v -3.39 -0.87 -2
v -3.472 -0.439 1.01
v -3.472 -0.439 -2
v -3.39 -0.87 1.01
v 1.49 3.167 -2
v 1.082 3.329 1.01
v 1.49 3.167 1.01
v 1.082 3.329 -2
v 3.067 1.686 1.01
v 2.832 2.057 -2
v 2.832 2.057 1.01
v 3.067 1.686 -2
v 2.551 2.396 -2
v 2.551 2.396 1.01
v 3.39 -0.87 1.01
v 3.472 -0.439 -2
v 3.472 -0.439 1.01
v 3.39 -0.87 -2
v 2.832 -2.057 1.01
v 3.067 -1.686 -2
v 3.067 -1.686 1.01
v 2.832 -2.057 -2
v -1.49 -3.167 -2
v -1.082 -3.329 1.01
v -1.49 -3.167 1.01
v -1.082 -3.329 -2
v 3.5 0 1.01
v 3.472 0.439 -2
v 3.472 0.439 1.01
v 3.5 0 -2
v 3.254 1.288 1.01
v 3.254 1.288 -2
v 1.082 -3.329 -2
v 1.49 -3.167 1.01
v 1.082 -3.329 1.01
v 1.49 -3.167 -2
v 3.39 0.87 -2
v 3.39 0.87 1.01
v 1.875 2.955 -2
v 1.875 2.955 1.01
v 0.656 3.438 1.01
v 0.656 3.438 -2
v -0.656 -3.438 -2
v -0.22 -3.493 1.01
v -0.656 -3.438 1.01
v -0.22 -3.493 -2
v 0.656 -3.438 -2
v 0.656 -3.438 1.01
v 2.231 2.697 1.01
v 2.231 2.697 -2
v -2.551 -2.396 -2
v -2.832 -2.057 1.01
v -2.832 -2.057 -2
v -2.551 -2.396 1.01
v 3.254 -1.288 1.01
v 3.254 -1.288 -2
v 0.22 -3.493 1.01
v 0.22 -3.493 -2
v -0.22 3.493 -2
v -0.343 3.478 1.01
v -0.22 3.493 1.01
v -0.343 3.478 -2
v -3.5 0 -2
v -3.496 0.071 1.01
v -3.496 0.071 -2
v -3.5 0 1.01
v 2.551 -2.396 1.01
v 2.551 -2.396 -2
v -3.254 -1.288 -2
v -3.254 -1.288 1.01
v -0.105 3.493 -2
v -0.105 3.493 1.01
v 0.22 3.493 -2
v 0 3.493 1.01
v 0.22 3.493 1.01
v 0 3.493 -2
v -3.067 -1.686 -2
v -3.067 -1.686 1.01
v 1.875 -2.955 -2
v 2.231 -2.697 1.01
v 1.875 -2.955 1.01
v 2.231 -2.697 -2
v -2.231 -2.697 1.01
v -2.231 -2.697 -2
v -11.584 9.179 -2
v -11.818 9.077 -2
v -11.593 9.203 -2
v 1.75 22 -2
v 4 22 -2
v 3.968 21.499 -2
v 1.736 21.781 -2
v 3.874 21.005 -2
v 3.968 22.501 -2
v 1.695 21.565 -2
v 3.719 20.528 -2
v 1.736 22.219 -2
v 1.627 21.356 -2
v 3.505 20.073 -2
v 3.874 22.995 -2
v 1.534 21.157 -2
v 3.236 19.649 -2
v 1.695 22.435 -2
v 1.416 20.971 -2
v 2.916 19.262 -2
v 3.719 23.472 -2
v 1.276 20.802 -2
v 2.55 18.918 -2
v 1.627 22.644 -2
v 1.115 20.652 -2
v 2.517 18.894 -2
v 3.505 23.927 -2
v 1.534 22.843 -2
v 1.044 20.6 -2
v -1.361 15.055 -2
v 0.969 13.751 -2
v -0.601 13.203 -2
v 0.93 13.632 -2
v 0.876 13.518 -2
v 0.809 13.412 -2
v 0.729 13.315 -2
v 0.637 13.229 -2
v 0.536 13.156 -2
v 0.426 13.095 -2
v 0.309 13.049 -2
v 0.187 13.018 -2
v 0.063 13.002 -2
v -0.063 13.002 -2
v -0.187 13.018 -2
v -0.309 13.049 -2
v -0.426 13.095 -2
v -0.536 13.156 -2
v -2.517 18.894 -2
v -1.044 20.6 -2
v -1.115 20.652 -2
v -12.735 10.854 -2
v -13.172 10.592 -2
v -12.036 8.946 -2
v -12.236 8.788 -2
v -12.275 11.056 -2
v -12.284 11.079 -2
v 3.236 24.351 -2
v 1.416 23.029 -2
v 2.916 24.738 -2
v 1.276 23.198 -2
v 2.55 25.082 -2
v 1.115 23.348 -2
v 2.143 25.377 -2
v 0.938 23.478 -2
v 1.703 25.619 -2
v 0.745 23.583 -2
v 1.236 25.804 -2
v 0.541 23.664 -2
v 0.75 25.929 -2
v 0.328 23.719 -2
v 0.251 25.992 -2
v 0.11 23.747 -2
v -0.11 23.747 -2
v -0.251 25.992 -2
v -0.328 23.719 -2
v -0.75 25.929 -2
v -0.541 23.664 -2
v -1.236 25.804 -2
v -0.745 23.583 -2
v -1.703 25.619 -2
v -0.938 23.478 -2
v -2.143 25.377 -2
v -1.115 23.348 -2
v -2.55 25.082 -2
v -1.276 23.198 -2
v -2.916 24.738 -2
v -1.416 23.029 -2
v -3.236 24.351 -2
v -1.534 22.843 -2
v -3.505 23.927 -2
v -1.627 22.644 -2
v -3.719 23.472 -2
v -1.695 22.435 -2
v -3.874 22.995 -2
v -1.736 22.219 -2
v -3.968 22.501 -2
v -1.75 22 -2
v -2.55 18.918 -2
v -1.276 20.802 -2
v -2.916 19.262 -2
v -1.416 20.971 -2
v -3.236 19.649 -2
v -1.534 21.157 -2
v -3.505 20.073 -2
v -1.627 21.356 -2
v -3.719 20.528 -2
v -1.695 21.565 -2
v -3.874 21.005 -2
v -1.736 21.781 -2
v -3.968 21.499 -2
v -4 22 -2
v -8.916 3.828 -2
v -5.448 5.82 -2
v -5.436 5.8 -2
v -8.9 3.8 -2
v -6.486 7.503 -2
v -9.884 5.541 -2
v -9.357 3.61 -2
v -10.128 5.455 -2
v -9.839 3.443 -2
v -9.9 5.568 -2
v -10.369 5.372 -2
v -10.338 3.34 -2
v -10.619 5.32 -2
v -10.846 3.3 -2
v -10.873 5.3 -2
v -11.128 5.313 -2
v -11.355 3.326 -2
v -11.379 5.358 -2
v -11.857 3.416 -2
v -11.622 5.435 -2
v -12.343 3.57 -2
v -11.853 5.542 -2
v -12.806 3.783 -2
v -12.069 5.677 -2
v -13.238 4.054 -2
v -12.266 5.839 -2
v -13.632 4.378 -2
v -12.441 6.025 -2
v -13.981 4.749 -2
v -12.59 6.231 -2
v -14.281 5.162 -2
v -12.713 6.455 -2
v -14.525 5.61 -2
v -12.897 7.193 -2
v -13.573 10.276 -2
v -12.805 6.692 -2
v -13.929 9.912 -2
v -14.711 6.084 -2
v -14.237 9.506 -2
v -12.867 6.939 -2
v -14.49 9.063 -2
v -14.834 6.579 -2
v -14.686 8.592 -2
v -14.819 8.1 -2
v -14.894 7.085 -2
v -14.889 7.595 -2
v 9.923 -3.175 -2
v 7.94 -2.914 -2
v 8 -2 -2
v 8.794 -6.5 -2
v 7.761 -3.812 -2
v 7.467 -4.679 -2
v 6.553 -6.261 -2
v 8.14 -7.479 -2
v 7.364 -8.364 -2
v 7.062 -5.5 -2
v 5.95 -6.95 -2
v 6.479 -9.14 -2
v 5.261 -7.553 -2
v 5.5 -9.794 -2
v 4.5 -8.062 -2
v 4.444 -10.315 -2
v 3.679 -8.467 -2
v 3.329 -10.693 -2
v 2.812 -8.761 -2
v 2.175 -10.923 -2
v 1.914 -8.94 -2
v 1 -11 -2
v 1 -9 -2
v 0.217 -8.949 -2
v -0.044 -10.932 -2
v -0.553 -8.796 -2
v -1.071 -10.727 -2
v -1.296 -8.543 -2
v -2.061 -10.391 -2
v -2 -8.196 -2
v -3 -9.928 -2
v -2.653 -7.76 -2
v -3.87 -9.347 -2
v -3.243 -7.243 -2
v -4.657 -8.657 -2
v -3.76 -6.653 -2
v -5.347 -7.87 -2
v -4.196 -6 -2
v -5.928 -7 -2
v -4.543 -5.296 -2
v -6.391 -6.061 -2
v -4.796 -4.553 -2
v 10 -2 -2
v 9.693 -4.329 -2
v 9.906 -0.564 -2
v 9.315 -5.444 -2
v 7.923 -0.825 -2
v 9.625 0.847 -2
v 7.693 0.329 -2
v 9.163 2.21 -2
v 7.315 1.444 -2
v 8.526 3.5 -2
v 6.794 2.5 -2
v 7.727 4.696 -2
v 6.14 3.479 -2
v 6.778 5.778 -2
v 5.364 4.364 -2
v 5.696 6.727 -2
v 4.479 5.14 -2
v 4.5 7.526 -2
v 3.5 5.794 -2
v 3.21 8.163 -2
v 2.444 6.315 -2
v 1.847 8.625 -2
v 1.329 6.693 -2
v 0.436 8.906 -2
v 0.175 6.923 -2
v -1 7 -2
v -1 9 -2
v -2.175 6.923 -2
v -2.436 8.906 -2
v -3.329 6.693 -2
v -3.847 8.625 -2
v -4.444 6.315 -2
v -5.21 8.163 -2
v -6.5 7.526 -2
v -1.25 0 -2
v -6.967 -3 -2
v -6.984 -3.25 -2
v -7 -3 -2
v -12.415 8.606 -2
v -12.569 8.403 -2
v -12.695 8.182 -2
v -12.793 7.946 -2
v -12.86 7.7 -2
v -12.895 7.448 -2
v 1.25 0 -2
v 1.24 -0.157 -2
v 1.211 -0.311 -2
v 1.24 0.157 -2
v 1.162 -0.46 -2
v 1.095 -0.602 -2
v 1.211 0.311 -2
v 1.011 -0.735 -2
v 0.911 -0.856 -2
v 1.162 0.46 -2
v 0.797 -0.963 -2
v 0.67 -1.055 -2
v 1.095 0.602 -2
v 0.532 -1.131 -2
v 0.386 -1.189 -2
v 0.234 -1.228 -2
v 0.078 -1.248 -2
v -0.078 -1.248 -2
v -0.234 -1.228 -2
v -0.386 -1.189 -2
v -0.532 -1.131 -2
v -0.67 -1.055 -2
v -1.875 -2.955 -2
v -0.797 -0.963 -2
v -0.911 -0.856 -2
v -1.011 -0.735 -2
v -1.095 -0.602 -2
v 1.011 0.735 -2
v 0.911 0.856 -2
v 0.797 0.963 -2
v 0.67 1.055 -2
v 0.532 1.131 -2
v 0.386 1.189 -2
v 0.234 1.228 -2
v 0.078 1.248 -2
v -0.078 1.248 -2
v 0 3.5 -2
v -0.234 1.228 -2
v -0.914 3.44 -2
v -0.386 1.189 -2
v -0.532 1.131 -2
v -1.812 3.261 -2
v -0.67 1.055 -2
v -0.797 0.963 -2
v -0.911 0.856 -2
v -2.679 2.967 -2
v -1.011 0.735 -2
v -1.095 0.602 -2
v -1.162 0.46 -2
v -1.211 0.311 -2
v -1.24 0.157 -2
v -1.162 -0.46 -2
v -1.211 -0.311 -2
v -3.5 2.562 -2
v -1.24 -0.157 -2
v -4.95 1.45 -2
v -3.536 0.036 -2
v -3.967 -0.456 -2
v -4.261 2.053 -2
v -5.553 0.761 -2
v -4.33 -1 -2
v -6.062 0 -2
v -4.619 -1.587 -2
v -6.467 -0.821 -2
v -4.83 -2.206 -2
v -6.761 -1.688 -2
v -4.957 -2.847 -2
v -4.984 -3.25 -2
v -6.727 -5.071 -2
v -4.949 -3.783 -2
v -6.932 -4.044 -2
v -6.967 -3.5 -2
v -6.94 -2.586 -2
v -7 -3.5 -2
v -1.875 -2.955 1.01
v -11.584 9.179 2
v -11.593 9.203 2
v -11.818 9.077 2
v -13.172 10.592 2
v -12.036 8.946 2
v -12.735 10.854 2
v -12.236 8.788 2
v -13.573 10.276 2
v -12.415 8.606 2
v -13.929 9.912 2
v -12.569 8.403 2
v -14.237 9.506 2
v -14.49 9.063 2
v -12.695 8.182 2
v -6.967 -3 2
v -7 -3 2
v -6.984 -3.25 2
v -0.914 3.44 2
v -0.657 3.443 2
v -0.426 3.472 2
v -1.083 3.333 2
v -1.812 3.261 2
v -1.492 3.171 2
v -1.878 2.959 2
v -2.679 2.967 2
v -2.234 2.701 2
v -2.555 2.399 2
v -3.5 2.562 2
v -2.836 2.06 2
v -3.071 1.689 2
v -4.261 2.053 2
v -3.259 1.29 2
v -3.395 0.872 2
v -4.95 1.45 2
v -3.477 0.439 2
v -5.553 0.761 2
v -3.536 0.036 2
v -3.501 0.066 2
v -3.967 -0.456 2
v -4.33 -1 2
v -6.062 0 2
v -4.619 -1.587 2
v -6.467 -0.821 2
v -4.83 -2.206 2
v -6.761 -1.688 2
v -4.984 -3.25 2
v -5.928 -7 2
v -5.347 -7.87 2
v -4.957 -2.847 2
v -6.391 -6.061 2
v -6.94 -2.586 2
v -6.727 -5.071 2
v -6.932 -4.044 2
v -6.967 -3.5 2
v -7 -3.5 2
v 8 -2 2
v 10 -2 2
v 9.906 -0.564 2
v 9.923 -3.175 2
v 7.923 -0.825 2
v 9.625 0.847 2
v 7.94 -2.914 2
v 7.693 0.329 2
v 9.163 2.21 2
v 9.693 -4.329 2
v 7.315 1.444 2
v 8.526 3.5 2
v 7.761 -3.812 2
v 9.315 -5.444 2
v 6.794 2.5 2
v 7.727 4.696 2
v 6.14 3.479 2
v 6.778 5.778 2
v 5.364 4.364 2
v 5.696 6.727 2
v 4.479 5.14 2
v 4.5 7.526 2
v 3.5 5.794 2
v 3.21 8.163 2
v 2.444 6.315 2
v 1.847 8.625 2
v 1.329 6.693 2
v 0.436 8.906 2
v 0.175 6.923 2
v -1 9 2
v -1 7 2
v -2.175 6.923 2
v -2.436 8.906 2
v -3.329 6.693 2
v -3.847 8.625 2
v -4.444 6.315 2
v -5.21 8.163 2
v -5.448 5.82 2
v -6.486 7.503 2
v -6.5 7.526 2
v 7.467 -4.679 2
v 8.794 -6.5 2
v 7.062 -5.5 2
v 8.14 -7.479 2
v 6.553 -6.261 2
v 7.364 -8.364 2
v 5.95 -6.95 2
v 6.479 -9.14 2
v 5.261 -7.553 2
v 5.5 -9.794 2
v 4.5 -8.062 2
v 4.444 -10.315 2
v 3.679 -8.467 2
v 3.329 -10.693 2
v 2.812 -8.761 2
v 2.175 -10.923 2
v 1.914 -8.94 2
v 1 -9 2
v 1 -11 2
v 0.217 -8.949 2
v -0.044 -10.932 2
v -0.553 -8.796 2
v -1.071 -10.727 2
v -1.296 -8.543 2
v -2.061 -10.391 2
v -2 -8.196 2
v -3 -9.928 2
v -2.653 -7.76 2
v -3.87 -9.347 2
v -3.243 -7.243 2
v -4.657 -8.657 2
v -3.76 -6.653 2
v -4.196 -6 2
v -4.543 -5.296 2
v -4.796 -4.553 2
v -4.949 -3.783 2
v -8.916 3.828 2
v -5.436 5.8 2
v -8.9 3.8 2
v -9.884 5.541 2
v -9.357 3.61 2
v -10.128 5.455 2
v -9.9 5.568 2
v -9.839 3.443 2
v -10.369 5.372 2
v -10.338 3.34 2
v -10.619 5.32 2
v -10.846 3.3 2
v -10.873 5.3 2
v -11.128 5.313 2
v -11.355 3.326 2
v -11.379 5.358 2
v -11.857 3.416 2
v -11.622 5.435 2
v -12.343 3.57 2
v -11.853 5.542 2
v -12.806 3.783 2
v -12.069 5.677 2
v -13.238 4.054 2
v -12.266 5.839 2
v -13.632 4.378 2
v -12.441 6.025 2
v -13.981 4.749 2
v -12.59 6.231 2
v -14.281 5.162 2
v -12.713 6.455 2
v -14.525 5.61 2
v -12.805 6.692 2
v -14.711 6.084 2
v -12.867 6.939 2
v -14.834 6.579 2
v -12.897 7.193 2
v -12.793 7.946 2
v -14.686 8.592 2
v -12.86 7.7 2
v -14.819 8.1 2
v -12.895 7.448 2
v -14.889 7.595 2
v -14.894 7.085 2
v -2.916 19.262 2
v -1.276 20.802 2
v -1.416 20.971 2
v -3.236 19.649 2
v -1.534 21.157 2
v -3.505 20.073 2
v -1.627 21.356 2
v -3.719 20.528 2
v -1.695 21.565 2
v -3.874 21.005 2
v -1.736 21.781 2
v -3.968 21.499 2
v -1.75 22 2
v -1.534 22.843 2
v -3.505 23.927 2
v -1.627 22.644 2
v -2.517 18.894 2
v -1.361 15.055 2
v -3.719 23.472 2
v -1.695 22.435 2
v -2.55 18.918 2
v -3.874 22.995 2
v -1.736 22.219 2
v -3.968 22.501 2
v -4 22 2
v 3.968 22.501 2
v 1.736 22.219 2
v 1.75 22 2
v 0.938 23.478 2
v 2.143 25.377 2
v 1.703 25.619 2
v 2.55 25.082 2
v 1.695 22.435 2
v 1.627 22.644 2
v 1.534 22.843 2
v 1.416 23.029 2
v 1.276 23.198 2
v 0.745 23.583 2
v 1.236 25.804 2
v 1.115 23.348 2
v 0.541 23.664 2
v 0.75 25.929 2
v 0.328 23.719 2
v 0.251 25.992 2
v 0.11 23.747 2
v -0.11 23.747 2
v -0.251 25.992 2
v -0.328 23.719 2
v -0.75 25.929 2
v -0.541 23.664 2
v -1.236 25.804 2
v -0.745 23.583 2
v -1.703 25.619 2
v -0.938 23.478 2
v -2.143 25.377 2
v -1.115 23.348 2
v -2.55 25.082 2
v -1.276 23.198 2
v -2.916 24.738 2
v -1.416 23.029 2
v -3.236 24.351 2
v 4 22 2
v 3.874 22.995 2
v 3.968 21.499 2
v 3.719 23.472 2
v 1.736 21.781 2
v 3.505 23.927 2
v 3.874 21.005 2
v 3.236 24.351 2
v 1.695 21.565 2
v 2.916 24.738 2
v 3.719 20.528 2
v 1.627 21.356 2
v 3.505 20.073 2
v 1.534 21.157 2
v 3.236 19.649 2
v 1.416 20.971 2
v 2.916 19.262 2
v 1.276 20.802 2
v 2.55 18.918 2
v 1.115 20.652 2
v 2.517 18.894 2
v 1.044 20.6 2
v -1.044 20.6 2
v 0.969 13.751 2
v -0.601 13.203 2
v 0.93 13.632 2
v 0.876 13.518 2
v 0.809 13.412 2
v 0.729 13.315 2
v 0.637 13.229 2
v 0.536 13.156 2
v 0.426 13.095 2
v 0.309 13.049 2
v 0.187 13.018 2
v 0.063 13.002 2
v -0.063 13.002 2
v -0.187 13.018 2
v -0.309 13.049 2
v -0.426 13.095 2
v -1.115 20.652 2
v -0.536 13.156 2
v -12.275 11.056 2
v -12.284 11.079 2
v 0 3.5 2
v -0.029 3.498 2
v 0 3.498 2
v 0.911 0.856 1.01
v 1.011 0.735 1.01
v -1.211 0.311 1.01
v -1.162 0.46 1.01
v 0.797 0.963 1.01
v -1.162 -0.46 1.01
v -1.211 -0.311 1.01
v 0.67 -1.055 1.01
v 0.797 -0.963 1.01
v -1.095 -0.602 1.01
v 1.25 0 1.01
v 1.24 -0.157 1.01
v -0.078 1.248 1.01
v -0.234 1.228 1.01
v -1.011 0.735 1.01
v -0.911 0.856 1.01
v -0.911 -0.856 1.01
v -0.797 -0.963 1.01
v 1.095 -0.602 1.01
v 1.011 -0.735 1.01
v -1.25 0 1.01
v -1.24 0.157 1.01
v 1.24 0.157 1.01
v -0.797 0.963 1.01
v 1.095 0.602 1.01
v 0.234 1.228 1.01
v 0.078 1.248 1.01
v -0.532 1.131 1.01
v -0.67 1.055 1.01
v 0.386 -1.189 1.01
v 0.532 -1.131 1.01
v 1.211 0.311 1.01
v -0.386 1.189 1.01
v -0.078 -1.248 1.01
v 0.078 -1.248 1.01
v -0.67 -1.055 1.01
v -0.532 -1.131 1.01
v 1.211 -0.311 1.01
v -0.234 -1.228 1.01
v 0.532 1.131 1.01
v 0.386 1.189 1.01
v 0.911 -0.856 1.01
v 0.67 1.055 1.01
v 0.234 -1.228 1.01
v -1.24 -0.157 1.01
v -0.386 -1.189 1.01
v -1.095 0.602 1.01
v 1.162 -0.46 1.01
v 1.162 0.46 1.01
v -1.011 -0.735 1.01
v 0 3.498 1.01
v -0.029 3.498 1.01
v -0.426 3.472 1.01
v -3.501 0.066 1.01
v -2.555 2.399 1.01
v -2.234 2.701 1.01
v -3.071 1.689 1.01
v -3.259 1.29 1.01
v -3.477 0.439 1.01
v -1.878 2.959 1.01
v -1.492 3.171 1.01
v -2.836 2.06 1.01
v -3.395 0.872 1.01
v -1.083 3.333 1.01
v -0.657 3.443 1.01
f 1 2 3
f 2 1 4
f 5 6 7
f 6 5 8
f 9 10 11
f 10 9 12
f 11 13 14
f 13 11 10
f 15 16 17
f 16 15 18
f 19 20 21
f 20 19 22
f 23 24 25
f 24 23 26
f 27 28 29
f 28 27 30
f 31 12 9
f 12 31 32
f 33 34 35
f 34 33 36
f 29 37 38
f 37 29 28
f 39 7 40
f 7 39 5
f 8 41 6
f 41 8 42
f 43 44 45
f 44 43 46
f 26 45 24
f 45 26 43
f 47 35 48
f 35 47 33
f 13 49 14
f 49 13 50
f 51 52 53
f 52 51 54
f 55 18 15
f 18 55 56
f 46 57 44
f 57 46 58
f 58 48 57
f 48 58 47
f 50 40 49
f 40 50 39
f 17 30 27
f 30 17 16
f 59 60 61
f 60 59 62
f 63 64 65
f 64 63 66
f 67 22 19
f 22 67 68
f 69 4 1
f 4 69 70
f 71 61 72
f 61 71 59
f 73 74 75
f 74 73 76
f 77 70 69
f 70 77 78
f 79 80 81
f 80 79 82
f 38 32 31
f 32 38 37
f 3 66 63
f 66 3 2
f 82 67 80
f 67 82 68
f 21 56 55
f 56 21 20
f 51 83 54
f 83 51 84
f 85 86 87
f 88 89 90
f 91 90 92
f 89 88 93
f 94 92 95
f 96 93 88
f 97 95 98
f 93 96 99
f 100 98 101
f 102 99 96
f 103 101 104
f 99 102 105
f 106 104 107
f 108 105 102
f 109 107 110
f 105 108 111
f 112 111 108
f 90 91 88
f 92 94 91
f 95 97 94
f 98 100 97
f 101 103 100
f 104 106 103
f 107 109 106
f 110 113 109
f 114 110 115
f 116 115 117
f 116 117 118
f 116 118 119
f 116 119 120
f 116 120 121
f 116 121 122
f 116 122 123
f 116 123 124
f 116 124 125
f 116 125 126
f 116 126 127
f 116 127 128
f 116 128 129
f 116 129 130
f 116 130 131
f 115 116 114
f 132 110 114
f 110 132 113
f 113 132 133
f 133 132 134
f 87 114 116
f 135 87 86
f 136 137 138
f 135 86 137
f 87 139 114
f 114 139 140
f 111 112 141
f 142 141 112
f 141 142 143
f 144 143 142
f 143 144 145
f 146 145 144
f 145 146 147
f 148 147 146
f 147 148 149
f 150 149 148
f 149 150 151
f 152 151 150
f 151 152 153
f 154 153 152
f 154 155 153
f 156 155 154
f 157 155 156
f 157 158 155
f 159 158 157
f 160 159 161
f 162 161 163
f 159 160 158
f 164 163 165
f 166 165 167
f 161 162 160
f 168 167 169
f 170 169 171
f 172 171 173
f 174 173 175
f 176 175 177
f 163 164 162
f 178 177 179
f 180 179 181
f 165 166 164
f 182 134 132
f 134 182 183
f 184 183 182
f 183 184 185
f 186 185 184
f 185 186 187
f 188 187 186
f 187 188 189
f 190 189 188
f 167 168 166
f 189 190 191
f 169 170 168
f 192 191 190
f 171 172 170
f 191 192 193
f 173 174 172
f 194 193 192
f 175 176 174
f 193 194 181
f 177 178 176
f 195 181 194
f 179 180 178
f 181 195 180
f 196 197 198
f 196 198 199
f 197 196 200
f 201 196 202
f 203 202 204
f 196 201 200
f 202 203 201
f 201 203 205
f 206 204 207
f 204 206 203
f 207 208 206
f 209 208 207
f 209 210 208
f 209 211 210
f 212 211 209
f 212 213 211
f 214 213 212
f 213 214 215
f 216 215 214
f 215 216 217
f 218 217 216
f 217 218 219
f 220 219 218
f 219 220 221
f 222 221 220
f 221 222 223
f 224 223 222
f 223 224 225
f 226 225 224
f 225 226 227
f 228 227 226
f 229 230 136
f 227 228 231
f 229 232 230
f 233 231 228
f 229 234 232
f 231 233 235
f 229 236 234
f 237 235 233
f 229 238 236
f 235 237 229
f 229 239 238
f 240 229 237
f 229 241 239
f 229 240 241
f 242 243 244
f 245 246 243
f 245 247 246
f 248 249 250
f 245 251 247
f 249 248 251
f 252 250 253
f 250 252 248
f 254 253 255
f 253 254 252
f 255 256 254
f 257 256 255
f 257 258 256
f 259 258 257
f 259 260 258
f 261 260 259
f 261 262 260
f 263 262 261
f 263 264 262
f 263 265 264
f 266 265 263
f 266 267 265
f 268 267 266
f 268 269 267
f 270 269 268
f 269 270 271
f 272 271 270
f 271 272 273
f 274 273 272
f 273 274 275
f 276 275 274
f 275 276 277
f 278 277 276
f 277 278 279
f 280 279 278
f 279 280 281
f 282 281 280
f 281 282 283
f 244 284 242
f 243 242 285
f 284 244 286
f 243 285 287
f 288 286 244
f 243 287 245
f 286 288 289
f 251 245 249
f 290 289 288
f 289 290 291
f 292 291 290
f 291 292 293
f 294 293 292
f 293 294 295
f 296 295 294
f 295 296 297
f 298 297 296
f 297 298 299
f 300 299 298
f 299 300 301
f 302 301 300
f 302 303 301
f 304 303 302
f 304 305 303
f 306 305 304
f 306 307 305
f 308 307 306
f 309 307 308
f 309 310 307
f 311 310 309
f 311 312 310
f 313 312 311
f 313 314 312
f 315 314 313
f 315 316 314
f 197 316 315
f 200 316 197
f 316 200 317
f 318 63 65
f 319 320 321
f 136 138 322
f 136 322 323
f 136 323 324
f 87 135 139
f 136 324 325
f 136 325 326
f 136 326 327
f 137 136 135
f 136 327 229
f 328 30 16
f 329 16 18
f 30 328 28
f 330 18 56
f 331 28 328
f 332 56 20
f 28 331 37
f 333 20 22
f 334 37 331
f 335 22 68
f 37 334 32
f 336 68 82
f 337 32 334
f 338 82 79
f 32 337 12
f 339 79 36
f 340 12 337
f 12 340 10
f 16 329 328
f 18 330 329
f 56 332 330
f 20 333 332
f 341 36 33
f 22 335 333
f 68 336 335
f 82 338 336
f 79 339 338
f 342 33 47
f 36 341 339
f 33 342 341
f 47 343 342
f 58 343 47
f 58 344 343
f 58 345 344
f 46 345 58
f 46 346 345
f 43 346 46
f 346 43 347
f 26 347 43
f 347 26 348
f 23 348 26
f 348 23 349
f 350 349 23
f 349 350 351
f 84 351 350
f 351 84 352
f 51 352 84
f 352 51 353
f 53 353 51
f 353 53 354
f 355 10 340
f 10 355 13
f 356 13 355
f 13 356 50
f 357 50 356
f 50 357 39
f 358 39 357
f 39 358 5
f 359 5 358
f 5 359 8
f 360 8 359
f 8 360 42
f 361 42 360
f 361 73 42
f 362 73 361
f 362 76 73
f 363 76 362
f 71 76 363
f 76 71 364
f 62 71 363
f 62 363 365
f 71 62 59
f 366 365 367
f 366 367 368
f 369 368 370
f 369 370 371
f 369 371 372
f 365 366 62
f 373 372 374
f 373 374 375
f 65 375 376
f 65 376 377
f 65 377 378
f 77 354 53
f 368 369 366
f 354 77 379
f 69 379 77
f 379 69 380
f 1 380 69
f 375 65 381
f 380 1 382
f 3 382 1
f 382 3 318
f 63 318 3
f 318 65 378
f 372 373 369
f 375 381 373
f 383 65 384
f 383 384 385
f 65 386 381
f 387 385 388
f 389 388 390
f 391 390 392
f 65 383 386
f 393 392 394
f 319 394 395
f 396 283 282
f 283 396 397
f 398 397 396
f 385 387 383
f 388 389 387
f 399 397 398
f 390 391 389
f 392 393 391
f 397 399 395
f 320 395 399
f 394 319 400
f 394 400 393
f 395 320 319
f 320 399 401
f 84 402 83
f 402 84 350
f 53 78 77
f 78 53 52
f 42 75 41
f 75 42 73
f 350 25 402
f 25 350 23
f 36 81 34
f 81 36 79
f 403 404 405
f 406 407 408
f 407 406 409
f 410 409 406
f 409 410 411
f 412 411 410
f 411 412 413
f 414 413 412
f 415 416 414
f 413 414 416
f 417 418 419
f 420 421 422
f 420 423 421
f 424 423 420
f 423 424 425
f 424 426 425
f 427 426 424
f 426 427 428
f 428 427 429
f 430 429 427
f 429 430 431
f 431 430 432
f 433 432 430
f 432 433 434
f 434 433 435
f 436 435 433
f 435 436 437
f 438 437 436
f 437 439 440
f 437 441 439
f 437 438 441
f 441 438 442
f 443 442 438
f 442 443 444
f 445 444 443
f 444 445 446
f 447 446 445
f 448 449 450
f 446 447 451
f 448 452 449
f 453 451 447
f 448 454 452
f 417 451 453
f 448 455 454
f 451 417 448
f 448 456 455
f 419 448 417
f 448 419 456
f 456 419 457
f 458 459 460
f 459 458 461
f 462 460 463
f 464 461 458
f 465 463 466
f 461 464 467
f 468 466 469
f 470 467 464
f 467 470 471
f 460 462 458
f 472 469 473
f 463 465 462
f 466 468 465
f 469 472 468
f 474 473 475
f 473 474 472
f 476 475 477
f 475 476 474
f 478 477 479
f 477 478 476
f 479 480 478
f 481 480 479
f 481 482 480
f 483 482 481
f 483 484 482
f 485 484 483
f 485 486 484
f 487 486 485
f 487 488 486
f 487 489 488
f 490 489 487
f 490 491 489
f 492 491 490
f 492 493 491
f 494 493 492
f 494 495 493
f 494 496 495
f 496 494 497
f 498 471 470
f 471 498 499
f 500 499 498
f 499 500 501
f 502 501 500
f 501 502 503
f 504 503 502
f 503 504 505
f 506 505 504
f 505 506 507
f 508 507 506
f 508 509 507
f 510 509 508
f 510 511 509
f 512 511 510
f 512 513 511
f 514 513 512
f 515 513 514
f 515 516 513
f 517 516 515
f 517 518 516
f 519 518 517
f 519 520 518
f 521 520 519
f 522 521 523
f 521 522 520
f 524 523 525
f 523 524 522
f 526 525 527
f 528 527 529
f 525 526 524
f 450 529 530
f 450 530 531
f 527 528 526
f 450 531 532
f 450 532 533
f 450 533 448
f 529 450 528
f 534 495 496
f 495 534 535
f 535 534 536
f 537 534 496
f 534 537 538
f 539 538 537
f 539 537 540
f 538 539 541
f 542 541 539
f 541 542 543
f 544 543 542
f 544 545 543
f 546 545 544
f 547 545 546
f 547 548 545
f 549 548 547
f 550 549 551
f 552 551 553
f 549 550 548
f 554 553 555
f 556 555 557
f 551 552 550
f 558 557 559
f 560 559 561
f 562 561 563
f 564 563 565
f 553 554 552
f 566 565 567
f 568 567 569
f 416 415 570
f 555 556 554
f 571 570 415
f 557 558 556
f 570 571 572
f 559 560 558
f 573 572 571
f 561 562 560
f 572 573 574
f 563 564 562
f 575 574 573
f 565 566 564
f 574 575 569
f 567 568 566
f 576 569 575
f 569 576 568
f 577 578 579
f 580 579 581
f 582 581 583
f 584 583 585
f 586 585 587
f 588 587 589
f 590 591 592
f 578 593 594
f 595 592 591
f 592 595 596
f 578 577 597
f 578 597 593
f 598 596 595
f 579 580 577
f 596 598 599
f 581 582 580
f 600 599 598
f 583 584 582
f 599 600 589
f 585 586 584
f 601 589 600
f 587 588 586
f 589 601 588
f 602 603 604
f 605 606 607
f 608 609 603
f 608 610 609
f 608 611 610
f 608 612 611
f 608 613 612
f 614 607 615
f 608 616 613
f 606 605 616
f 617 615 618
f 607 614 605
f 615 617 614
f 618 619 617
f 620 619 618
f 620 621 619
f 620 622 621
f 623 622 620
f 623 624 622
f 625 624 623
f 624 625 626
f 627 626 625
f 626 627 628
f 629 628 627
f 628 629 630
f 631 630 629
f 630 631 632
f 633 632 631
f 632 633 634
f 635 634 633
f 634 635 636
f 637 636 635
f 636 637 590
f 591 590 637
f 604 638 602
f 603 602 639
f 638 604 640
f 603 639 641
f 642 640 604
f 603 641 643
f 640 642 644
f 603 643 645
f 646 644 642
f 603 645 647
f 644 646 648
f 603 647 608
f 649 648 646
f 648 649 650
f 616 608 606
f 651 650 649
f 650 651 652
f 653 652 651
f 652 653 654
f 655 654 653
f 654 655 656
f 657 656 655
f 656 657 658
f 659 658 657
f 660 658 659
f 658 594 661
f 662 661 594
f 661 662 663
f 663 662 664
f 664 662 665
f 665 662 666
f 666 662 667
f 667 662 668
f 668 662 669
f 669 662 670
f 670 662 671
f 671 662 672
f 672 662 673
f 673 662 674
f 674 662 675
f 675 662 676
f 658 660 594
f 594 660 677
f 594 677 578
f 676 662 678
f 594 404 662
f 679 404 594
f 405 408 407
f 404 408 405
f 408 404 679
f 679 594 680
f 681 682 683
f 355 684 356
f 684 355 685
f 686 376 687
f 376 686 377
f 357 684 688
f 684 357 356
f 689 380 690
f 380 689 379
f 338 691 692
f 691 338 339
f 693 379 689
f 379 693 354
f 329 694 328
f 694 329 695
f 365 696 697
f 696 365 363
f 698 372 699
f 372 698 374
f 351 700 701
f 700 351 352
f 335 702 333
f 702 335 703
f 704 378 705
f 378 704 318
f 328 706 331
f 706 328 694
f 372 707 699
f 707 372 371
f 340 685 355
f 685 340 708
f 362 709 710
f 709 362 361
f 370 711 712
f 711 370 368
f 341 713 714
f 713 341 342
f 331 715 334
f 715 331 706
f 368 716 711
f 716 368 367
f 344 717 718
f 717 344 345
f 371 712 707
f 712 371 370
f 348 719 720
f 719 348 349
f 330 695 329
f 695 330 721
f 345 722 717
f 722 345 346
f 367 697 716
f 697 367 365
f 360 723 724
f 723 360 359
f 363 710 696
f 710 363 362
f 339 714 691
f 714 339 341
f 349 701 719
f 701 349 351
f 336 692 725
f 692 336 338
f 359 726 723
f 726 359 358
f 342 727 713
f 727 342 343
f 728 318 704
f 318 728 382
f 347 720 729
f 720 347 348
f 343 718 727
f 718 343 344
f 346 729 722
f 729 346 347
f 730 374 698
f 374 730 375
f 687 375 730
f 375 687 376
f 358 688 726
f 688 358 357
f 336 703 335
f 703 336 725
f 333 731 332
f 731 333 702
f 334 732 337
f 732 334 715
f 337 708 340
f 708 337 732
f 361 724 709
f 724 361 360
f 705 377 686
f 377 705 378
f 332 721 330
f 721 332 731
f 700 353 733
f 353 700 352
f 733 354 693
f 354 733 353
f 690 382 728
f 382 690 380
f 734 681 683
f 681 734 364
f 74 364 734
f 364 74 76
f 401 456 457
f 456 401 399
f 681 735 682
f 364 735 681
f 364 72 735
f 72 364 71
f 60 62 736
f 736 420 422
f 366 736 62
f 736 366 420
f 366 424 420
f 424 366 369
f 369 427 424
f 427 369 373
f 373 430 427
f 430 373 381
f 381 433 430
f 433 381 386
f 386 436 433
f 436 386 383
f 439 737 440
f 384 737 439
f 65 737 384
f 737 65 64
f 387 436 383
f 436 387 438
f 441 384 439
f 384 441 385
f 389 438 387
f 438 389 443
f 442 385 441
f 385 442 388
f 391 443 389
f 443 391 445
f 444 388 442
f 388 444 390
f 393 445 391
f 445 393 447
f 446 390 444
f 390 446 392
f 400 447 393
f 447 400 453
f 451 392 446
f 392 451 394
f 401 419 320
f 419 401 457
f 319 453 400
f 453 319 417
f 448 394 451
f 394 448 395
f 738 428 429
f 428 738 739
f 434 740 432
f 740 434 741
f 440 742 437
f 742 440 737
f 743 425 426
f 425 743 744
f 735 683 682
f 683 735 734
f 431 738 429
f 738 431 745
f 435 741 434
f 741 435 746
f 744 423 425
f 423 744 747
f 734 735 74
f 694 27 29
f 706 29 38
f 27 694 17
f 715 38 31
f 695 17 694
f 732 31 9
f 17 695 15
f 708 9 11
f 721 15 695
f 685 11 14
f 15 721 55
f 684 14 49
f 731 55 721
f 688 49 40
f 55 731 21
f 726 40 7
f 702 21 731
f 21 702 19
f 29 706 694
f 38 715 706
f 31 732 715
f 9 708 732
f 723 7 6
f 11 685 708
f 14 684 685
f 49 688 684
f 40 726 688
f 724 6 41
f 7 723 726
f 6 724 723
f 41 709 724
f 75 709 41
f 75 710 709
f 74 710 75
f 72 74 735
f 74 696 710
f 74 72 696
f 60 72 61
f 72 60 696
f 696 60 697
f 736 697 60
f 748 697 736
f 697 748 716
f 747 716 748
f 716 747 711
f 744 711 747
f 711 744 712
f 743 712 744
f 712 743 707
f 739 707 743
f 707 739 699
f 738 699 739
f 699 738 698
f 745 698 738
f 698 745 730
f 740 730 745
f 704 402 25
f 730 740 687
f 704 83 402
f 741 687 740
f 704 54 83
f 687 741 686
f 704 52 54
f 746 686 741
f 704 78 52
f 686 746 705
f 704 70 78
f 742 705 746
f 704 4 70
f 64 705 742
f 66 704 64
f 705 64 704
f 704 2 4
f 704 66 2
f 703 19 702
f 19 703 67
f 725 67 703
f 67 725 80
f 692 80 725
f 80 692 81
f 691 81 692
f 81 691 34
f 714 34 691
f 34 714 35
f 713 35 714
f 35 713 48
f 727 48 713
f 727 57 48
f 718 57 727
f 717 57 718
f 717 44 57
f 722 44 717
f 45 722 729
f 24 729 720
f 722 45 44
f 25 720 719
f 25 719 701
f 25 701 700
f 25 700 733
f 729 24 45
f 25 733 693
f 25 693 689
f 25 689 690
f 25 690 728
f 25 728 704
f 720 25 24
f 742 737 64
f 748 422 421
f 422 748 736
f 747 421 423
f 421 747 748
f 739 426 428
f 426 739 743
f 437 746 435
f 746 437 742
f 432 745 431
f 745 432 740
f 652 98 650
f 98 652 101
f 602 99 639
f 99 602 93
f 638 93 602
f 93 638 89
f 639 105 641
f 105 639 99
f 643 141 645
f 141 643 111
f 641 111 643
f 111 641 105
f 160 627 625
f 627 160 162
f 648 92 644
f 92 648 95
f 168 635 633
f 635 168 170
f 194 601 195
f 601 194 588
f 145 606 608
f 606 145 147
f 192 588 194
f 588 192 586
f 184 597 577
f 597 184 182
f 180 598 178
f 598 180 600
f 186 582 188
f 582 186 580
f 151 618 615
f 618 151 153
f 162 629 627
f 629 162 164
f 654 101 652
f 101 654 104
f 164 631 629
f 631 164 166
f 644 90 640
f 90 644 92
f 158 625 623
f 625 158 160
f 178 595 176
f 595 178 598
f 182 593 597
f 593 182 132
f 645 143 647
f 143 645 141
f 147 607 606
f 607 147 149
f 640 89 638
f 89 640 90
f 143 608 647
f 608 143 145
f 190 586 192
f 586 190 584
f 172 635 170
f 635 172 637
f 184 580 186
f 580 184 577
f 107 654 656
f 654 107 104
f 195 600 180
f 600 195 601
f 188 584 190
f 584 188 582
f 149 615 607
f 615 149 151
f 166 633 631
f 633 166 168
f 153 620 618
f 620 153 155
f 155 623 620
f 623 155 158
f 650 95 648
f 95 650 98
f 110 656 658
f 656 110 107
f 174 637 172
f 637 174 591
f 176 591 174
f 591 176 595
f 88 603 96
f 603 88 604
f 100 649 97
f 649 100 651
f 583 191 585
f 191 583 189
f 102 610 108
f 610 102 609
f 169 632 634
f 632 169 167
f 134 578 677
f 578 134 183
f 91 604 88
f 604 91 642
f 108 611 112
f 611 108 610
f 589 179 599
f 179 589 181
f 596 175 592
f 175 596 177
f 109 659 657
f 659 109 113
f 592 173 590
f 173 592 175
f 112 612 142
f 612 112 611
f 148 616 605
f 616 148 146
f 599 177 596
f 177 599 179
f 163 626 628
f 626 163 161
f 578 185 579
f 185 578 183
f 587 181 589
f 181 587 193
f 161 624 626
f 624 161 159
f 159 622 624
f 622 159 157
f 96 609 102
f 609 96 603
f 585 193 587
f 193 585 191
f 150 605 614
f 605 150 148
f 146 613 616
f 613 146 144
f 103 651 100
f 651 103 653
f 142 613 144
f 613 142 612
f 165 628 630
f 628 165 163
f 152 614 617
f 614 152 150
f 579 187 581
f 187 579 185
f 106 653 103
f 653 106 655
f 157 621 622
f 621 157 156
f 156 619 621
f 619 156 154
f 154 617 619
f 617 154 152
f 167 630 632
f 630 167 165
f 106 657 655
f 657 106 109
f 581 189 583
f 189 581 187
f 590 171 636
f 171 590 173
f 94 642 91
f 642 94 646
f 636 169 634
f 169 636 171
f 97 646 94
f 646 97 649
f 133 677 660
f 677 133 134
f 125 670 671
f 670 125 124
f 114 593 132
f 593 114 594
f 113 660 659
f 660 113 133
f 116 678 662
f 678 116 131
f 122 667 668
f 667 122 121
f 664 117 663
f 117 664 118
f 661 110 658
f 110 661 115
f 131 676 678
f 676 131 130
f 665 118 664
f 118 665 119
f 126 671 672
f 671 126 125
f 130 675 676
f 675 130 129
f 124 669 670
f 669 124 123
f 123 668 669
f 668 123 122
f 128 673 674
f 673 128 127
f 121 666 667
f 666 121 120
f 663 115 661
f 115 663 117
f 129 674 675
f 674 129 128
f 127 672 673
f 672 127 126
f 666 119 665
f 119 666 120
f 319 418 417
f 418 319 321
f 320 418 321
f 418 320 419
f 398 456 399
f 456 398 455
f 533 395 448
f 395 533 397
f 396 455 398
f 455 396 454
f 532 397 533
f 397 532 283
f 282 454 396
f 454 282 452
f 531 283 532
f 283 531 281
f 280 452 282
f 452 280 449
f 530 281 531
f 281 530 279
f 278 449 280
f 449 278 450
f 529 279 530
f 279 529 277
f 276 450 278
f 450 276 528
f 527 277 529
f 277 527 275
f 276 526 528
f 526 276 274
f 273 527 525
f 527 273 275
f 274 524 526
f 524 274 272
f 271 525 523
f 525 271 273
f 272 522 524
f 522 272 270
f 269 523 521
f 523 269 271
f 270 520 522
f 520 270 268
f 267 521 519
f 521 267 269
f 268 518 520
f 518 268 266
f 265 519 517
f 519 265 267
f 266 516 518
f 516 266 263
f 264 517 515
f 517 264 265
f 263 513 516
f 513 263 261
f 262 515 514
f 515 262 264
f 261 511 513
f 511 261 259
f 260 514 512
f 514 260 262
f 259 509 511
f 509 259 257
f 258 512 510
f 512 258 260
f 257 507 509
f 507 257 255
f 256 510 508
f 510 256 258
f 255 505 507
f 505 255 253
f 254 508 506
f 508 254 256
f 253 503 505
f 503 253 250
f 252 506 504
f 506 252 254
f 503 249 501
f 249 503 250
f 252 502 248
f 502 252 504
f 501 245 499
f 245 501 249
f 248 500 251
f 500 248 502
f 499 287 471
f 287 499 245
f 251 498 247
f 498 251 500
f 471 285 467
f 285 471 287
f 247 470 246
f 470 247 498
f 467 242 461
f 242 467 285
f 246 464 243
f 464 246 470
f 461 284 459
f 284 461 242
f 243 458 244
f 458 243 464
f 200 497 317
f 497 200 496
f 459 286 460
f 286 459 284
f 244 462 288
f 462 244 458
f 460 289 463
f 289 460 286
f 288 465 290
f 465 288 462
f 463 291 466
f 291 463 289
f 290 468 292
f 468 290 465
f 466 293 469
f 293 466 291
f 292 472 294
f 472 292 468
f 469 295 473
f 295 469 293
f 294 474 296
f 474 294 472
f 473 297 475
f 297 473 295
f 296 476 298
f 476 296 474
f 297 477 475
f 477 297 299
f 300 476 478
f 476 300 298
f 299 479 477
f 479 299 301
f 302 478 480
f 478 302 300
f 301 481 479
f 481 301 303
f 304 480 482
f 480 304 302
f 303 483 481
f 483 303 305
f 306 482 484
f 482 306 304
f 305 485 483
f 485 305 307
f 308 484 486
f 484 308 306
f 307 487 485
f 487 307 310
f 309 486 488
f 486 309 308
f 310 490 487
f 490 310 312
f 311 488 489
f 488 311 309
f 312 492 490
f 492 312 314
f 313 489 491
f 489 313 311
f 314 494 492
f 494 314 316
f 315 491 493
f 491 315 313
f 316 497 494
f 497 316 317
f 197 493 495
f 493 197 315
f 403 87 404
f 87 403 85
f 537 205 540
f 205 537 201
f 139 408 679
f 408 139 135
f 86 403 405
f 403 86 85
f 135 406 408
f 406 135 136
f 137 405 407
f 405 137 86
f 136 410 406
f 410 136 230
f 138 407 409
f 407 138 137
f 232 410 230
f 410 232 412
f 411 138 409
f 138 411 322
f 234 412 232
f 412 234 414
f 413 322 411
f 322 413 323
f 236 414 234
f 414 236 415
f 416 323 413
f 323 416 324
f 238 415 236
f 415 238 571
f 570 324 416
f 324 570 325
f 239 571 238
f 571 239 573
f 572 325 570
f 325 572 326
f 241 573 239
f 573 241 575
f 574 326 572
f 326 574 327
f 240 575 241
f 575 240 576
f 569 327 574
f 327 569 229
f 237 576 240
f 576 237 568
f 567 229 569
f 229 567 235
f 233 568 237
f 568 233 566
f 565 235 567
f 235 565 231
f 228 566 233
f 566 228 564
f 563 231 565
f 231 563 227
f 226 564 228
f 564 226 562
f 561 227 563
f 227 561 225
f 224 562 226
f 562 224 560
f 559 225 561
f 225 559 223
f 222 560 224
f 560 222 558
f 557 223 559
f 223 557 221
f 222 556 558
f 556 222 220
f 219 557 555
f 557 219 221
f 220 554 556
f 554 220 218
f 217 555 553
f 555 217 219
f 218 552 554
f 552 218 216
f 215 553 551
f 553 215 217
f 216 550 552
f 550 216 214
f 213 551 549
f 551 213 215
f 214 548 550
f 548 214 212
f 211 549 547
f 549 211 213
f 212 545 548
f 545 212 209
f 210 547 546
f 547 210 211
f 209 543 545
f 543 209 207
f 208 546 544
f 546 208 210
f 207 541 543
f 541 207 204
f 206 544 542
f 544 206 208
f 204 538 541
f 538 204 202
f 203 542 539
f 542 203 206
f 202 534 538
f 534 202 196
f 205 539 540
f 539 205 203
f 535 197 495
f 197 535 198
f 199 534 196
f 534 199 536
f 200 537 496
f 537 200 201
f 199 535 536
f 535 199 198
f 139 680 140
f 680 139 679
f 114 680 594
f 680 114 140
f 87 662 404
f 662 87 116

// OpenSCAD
// Original: https://www.thingiverse.com/thing:3432954
// Eggbot remix/ extension
// License: by schuetzi99 is licensed under the Creative Commons - Attribution - Non-Commercial - Share Alike license.
// 
// 2023 - justin@justinotherguy.org: enlarged drill hole to accomodate for bigger screws

$fn=50;

lochabstand=22;
dicke=2;
breite=4;

difference() {
  union() {
    translate([0,0,-breite/2])auge(7,2.5);
    translate([0,-3.5,0])rotate([0,0,90])
      rotate_extrude(angle=90, convexity=10)
        translate([6, 0]) square([dicke,breite],center=true);
  }
  translate([0,0,1.01]) cylinder(d=7.01,h=1);
}

translate([0,lochabstand,-breite/2])auge(8,3.5); // original: 2.4
hull(){
  translate([-3,lochabstand-1.5,-breite/2])cube([6,0.1,breite]);
  translate([0,lochabstand-8,-breite/2])cylinder(r=1,h=breite);
}

translate([1,-3,0])rotate([0,0,180])
   rotate_extrude(angle=90, convexity=10)
       translate([7, 0]) square([dicke,breite],center=true);
translate([1,-2,0])rotate([0,0,270])
   rotate_extrude(angle=90, convexity=10)
       translate([8, 0]) square([dicke,breite],center=true);
translate([-1,-2,0])rotate([0,0,0])
   rotate_extrude(angle=120, convexity=10)
       translate([10, 0]) square([dicke,breite],center=true);
translate([-10.9,7.3,0])rotate([0,0,110])
   rotate_extrude(angle=190, convexity=10)
       translate([3, 0]) square([dicke,breite],center=true);
translate([-8.9,3.8,-breite/2])rotate([0,0,30])cube([4,dicke,breite]);
translate([-11.6,9.2,-breite/2])rotate([0,0,20])cube([12,dicke,breite]);
     
module auge(od,id){
  difference(){
    translate([0,0,0])cylinder(r=od/2,h=breite);
    translate([0,0,-0.01])cylinder(r=id/2,h=breite+0.2);
  }
}
